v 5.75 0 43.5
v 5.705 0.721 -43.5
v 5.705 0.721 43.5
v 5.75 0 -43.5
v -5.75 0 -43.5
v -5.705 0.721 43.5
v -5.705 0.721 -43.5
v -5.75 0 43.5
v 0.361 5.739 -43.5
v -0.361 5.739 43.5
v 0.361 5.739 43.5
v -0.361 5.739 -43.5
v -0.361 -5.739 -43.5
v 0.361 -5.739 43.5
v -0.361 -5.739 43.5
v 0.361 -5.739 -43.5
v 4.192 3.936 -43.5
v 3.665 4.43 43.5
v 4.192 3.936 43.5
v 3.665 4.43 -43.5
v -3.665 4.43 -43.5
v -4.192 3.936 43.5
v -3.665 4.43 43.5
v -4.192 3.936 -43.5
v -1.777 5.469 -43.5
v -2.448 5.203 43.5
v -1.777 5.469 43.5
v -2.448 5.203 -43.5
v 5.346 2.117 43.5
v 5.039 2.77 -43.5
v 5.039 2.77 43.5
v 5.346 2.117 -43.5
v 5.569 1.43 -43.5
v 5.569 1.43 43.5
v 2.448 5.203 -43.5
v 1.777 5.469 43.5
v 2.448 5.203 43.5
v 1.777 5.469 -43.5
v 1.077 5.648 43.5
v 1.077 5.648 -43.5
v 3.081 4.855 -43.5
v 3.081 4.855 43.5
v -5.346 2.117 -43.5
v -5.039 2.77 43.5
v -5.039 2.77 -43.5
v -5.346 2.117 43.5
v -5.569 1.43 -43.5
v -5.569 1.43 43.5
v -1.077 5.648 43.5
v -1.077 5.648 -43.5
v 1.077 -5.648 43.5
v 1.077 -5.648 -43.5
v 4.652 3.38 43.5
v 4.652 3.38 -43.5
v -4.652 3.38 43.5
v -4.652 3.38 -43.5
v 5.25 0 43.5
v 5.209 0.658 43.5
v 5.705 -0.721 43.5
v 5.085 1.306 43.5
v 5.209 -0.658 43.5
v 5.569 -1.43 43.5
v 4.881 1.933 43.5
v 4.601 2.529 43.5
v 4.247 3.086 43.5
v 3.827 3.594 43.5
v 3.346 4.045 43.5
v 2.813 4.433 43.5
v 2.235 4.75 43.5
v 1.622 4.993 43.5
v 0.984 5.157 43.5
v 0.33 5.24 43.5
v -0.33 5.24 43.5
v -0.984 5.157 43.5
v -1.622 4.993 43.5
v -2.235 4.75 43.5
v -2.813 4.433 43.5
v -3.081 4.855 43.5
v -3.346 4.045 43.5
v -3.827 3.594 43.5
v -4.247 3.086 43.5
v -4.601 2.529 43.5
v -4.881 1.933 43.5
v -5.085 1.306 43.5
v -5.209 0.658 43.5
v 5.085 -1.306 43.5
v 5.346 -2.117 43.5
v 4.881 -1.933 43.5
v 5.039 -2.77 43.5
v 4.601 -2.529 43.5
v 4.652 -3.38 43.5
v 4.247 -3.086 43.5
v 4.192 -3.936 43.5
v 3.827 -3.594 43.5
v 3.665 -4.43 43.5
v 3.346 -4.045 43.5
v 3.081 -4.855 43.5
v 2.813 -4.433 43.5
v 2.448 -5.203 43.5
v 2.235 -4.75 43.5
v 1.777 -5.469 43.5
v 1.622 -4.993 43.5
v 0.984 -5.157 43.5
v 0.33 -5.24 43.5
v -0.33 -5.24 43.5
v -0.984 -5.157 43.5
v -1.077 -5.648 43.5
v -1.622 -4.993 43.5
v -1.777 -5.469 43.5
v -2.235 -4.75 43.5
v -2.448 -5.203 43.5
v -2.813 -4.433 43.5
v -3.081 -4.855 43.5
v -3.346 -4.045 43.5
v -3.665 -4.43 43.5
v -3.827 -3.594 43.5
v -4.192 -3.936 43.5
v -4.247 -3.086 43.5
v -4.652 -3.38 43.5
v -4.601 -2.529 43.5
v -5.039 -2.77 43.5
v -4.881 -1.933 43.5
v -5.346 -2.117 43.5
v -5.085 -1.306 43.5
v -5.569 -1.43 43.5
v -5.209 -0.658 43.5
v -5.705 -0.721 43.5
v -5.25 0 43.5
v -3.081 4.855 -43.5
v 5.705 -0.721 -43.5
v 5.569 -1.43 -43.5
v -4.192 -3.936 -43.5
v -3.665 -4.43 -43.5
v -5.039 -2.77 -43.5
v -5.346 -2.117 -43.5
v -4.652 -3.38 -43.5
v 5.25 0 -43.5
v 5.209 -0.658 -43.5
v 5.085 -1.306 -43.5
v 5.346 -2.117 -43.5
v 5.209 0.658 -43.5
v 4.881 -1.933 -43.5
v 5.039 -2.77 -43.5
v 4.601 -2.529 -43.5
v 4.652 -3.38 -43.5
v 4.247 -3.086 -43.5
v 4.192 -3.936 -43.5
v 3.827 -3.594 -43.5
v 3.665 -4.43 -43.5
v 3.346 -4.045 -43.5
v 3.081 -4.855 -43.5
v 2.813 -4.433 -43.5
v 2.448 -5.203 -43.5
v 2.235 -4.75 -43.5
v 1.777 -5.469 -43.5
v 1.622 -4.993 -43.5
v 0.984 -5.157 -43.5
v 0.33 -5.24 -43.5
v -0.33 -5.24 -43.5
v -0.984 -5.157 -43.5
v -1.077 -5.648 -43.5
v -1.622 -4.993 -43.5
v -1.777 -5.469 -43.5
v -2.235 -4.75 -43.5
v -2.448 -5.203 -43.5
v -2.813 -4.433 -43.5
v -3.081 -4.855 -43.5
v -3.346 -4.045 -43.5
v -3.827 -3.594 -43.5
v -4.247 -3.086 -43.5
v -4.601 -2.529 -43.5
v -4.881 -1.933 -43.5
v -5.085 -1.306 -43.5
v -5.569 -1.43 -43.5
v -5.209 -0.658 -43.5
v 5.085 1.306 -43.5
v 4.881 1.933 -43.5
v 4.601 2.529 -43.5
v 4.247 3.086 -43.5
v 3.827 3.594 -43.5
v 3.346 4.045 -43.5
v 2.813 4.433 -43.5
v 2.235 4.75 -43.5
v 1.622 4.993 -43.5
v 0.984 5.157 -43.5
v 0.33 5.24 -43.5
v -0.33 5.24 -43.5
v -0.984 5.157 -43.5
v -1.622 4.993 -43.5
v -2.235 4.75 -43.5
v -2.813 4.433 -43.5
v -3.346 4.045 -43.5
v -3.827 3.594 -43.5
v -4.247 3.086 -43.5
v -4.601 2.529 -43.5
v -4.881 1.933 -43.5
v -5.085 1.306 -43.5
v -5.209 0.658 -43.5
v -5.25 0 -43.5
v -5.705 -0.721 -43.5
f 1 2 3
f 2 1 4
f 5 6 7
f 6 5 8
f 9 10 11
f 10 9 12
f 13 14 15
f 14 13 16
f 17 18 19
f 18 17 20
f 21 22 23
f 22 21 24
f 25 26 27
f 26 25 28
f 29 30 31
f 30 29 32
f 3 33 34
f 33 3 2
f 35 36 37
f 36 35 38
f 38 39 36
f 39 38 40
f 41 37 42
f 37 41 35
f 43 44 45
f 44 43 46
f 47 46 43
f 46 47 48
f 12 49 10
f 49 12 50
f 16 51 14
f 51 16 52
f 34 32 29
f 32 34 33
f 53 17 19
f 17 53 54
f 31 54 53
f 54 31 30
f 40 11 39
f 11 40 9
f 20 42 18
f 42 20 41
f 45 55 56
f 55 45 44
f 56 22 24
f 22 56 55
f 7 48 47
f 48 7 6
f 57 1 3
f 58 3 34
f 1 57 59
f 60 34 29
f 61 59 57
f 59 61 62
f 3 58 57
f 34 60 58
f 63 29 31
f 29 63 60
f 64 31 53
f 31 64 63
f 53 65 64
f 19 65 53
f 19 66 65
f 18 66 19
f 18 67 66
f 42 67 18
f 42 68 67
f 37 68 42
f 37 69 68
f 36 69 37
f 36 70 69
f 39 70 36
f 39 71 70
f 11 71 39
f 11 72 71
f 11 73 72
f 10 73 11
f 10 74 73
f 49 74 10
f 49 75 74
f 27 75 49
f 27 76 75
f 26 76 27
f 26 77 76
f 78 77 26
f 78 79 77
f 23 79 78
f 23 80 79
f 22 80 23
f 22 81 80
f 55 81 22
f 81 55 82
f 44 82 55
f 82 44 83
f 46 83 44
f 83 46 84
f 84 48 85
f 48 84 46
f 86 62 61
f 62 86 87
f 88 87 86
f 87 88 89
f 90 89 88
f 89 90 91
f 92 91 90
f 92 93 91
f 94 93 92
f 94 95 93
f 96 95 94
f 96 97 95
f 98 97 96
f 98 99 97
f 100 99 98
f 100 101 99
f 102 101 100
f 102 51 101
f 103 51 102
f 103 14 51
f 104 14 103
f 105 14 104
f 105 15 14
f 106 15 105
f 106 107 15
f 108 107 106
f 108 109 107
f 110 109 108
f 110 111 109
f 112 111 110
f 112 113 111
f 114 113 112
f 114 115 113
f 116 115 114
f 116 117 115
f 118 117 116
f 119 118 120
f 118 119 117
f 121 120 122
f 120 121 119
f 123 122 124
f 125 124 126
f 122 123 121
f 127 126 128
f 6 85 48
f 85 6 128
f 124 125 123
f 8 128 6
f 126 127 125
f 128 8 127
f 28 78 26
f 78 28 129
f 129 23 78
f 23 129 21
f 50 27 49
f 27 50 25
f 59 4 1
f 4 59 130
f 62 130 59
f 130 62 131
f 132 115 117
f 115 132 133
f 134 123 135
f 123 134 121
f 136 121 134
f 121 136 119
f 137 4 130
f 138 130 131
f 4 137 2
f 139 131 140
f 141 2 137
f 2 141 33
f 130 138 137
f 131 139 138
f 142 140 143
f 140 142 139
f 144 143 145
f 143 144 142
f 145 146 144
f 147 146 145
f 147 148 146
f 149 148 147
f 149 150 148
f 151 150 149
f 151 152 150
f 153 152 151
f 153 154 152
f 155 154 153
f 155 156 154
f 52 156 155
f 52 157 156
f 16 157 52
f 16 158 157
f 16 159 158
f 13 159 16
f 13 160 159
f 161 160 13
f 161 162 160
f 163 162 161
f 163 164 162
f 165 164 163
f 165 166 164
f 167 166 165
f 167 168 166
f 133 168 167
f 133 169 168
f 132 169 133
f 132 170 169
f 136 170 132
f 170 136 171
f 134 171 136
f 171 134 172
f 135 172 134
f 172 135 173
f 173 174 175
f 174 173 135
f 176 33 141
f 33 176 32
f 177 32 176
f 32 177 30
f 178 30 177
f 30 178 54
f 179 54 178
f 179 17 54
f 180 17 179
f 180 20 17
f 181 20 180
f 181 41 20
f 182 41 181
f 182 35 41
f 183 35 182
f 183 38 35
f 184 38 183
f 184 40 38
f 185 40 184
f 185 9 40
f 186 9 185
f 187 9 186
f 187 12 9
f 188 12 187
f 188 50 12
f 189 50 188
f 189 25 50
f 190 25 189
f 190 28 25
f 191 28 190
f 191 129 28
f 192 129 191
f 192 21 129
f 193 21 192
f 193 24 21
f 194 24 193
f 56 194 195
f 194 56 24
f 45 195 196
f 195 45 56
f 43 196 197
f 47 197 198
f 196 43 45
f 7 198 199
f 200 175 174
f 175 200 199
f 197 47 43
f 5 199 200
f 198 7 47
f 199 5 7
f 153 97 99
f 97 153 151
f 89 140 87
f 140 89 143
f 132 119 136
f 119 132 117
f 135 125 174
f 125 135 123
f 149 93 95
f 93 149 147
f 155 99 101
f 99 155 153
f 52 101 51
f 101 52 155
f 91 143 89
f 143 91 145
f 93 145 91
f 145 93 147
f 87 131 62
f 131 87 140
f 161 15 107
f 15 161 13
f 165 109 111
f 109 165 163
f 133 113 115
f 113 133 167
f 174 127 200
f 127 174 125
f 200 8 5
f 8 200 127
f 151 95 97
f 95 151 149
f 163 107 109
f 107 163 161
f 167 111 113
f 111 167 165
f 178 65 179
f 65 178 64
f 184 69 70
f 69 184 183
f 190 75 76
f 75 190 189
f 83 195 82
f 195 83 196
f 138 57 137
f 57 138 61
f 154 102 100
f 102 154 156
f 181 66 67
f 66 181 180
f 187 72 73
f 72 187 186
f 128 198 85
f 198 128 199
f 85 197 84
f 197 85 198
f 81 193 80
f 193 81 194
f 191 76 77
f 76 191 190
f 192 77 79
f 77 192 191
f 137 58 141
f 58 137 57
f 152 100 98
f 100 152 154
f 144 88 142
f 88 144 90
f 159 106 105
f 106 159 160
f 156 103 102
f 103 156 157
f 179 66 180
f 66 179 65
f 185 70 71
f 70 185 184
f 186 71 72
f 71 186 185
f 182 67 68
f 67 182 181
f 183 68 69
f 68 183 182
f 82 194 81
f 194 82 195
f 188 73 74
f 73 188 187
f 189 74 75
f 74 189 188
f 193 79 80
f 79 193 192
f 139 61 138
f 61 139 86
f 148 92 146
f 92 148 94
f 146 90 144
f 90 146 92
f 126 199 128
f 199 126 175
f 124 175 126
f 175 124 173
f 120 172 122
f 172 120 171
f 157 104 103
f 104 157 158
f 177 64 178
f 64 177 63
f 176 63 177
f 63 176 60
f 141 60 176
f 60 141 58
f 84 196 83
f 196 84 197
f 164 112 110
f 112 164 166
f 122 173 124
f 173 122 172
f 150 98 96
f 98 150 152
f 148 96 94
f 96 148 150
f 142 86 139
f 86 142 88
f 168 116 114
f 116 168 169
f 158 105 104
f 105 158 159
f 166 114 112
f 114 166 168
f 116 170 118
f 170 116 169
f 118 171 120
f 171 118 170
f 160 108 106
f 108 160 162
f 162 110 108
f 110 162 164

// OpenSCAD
$fn = 50;


difference() {
	union() {
		translate(v = [0, 0, -43.5000000000]) {
			cylinder(h = 87, r = 5.7500000000);
		}
	}
	union() {
		translate(v = [0, 0, -100.0000000000]) {
			cylinder(h = 200, r = 5.2500000000);
		}
	}
}
